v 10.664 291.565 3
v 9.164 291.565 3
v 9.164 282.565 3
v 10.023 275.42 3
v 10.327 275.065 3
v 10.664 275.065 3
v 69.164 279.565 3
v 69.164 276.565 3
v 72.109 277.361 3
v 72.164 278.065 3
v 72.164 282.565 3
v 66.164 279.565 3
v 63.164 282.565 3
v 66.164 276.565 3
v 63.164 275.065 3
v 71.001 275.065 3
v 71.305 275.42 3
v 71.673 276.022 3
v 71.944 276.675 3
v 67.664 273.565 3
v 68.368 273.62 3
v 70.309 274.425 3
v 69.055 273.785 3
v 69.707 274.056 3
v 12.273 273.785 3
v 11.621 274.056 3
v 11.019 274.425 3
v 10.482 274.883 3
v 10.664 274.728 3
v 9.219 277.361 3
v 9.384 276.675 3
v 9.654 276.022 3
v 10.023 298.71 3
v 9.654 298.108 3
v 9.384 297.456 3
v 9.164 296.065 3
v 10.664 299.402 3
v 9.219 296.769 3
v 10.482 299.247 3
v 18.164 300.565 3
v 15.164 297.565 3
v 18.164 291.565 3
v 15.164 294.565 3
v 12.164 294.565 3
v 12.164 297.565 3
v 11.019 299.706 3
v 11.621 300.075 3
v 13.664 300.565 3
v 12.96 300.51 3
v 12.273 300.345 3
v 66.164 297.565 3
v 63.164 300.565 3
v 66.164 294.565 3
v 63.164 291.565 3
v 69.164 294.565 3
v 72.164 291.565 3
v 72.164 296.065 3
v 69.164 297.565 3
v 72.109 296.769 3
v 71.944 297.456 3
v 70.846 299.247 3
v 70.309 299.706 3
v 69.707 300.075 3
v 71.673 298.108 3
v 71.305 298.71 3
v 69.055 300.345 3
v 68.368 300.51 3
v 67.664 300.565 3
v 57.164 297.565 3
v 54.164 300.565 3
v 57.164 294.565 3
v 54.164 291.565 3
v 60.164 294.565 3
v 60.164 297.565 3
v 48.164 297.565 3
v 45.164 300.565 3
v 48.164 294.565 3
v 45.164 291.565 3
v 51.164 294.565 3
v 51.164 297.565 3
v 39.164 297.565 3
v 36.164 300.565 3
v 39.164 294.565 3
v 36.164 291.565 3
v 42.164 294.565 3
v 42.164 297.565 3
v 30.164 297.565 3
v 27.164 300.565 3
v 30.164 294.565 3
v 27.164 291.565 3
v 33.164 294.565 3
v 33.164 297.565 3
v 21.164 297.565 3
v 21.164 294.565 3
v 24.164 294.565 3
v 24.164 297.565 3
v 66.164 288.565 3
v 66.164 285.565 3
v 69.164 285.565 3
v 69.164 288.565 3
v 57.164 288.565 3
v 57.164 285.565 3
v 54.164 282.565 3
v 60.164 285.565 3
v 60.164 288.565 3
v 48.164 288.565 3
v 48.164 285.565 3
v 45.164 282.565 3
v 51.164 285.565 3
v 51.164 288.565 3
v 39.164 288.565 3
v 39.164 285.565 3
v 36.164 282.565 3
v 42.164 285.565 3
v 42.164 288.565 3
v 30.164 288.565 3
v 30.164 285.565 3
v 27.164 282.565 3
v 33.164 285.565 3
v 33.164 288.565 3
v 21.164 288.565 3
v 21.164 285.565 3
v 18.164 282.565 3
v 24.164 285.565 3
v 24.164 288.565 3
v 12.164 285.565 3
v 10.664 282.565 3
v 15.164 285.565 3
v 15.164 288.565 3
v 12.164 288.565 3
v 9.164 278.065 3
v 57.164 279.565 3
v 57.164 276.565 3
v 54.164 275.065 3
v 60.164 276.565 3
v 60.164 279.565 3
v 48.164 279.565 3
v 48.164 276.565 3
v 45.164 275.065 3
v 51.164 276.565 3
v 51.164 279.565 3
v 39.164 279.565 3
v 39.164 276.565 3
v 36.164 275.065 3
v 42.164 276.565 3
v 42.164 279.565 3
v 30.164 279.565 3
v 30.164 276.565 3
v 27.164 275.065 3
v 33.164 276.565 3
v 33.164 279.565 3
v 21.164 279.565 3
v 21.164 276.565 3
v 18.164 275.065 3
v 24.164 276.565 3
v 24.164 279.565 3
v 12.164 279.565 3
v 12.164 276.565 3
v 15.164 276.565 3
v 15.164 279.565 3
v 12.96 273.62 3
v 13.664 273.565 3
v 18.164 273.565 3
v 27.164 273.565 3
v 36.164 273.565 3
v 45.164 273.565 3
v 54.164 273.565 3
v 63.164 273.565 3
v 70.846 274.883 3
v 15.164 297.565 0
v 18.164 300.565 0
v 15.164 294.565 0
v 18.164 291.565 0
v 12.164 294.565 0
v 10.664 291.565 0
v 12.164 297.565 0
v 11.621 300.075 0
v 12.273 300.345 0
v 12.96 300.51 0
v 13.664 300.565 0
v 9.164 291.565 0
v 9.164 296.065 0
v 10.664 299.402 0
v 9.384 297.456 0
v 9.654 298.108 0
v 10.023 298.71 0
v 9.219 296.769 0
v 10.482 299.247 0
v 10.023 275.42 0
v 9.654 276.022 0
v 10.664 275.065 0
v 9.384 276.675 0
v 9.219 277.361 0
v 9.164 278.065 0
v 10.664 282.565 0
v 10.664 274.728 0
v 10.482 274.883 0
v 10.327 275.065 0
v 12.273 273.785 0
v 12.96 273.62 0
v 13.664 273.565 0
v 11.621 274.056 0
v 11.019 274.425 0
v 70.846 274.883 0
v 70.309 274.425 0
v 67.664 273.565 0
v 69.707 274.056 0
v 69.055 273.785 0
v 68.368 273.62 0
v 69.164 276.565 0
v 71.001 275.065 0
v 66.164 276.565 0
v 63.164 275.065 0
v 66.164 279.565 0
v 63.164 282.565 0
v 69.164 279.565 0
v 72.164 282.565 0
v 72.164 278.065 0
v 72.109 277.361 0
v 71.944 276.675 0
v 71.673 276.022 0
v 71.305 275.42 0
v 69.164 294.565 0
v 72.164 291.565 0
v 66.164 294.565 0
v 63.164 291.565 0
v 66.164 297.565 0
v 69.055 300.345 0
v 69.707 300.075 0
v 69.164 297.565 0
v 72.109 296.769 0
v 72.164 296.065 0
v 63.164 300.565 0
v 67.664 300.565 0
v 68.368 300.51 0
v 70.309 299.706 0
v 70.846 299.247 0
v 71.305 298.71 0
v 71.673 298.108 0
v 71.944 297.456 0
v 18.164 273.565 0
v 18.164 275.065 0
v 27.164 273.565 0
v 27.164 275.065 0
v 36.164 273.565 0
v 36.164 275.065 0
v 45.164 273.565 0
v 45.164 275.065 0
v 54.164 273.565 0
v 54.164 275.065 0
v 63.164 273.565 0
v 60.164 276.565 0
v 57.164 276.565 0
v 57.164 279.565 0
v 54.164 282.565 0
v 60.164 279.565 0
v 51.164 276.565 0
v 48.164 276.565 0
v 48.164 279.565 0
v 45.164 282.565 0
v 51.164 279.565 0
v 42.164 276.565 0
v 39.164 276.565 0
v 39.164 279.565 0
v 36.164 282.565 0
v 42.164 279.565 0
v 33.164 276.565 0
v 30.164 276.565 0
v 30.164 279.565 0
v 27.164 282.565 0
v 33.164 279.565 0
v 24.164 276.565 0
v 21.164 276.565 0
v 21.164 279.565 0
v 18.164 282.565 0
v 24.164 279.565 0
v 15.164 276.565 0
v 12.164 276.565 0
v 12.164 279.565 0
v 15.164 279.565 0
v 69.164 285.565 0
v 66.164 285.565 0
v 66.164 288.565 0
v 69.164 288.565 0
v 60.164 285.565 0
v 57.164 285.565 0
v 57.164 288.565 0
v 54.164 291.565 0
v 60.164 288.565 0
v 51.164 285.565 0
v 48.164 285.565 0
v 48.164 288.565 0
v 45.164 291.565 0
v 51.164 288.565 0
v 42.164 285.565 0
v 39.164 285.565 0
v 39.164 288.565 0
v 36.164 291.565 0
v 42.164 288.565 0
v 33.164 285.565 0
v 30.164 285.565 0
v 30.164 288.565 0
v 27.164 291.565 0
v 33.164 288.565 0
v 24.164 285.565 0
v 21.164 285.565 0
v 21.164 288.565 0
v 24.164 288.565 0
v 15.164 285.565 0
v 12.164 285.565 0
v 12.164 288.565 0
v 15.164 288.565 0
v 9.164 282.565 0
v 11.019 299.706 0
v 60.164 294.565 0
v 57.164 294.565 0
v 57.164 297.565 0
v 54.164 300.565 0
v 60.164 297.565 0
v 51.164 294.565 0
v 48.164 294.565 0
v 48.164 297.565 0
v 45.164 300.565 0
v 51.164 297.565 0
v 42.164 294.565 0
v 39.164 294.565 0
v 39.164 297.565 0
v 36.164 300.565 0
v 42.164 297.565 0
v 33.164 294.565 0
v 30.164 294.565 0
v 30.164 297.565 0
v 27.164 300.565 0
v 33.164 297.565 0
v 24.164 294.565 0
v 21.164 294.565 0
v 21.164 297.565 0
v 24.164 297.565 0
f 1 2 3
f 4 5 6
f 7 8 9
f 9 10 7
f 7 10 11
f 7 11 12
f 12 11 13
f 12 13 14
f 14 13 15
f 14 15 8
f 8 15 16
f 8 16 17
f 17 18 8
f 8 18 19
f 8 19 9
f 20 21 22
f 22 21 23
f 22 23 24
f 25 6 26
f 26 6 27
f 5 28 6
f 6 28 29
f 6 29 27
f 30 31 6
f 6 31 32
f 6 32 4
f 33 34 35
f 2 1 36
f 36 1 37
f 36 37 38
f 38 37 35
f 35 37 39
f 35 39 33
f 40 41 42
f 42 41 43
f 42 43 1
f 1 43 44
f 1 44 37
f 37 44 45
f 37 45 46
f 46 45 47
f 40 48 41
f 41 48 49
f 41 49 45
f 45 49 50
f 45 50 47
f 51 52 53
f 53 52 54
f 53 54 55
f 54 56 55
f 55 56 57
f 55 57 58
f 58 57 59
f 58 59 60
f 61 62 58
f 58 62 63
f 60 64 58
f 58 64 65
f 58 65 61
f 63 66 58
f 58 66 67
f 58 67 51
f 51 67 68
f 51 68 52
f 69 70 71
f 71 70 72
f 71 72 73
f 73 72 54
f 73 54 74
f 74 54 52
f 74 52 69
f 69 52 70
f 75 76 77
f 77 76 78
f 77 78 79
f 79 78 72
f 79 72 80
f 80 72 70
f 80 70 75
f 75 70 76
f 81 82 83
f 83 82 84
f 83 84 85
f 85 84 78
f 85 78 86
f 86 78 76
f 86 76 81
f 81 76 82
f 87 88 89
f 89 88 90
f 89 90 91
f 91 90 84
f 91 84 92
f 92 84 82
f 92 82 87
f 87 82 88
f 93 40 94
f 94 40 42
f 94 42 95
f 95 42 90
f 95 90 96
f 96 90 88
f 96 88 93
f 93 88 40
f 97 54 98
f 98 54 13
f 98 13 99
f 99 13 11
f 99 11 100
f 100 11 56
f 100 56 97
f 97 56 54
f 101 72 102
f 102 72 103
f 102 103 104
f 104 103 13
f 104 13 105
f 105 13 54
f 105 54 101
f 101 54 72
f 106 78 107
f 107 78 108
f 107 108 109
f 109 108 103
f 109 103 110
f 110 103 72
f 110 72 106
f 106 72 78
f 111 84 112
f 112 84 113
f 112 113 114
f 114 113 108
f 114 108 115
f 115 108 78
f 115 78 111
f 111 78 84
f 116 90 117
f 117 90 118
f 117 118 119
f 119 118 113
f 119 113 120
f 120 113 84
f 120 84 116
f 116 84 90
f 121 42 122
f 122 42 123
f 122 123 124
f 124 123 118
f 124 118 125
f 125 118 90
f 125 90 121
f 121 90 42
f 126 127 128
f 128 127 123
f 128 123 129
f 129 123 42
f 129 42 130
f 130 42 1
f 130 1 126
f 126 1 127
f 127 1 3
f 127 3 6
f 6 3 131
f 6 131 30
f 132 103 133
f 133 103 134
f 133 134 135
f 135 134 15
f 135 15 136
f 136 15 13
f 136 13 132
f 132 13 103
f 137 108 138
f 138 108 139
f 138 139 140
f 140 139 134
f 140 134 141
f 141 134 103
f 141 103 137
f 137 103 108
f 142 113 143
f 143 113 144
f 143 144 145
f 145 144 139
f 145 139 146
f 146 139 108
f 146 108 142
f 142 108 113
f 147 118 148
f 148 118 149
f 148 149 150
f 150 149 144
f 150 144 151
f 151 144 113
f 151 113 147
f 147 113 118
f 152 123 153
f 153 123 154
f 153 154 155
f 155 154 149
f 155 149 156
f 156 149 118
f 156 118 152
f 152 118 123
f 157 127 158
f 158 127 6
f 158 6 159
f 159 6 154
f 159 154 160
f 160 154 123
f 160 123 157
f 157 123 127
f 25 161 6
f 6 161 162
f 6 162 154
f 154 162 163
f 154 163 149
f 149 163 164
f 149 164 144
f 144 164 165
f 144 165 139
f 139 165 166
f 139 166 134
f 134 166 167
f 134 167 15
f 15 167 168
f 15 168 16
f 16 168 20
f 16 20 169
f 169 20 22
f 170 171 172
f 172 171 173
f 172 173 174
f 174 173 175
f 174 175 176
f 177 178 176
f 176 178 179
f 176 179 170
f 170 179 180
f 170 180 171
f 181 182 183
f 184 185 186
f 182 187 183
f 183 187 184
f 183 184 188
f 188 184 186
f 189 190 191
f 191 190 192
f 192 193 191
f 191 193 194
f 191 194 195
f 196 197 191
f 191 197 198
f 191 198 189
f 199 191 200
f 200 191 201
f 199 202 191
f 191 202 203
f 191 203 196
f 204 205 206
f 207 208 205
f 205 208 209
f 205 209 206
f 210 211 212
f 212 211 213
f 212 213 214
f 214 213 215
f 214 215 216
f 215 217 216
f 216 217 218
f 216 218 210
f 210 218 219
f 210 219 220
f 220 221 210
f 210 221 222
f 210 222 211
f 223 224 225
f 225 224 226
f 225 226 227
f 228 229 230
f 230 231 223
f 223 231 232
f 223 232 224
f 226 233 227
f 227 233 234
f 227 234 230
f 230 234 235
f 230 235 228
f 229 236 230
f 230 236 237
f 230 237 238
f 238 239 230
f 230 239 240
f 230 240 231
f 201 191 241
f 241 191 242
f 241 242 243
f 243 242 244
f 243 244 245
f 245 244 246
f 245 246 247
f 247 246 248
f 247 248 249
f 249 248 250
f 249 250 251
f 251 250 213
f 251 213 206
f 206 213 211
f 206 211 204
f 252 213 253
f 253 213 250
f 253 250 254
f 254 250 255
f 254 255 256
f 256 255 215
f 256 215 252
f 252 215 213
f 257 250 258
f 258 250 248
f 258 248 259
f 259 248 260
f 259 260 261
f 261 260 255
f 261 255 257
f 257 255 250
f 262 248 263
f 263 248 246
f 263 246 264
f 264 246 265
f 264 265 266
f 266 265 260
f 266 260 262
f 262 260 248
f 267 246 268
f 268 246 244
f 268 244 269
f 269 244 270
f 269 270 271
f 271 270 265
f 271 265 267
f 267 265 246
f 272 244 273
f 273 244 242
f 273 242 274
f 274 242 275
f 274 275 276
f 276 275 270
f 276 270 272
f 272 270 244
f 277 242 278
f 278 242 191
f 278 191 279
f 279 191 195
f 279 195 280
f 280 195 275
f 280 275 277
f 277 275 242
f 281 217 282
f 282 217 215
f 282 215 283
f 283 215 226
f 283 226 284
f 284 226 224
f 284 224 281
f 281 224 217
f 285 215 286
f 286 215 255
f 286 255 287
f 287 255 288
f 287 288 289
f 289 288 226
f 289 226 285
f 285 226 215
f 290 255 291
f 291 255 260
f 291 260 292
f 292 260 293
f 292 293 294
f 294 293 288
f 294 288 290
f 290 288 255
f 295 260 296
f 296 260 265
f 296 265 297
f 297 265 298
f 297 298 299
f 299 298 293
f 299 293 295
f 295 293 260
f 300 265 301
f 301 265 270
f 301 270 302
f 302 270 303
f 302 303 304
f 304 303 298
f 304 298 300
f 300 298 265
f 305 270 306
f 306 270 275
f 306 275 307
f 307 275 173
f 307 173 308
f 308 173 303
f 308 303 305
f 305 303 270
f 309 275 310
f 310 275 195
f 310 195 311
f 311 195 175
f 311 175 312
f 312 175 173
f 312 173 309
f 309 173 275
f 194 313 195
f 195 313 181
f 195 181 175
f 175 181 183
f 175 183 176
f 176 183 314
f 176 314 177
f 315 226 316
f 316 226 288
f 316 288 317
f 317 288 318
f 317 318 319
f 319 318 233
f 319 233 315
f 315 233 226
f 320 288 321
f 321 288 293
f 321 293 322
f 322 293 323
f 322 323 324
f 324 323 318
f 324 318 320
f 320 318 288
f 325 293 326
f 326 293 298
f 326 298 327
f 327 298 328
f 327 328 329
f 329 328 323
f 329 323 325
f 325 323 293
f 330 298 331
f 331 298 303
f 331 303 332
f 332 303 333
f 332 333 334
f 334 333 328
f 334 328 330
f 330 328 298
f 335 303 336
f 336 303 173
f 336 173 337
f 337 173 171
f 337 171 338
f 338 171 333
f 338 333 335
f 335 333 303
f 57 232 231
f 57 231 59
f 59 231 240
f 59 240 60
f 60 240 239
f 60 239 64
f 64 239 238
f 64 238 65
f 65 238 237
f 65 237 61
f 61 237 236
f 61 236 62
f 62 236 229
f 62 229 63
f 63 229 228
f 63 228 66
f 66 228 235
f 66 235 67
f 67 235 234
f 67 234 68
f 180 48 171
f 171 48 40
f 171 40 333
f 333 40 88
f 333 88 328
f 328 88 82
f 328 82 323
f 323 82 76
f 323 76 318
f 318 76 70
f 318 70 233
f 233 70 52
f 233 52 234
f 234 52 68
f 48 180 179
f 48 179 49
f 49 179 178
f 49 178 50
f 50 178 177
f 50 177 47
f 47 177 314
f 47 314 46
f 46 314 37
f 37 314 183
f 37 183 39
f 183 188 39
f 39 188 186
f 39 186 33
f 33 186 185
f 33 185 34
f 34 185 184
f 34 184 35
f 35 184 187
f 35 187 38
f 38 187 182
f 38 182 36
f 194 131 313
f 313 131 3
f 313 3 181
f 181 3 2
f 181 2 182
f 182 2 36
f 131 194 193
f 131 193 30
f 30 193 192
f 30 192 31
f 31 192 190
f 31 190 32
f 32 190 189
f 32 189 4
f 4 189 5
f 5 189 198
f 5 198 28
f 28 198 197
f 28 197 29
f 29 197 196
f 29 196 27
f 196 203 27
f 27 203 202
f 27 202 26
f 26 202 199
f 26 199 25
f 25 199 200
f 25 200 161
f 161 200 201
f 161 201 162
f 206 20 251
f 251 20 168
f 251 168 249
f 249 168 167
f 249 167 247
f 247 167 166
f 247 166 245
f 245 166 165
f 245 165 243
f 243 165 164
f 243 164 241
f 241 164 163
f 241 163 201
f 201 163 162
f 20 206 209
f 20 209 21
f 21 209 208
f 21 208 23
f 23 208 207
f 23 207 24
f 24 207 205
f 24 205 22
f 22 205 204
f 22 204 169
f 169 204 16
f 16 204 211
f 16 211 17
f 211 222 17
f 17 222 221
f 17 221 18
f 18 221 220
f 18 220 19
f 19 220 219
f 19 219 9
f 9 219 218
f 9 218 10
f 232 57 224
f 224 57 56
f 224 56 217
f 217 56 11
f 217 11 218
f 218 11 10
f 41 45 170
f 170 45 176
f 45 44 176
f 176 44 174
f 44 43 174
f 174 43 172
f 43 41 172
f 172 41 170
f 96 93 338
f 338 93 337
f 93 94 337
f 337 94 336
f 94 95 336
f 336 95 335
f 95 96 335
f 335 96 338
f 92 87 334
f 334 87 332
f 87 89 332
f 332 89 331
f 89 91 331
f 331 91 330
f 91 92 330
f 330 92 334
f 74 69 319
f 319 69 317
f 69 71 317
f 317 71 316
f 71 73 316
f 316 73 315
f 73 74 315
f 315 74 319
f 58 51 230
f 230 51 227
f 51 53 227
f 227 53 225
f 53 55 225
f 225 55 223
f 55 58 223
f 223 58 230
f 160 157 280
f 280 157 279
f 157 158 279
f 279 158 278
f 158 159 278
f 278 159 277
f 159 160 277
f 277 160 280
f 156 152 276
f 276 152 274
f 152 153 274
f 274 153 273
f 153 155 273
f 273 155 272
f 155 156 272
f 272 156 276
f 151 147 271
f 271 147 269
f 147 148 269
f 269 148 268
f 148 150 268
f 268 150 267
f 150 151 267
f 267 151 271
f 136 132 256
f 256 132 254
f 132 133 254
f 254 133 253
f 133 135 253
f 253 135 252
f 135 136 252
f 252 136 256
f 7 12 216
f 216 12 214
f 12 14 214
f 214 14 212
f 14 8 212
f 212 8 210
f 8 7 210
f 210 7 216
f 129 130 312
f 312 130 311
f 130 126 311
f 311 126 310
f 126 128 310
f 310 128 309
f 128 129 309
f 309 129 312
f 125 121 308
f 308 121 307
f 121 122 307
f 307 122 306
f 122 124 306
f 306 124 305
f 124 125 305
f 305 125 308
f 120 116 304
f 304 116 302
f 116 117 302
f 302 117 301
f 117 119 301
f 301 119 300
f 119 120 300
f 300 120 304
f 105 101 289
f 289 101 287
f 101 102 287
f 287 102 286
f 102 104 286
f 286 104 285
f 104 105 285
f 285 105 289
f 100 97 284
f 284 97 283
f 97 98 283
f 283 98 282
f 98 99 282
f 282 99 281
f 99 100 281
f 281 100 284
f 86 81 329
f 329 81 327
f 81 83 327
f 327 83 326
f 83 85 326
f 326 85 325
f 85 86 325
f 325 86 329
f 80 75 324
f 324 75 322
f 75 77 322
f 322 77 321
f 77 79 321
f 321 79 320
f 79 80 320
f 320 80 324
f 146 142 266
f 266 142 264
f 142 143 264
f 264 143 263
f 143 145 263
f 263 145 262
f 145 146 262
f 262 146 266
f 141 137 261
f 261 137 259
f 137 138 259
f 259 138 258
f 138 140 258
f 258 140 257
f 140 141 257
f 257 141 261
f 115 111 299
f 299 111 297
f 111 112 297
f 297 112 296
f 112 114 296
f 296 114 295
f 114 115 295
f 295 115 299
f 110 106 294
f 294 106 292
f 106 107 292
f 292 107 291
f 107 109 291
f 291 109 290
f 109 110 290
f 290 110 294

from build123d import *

# Parameters (mm, degrees)
MODEL_W                 = 3
MODEL_H                 = 3
SALIENTE_EXTRUIR1_DEPTH = 3


with BuildPart() as part:
    # Model → Saliente-Extruir1 (new body)
    with BuildSketch(Plane.XY):
        with BuildLine():
            Line((13.663940534, 300.565078072), (67.663940534, 300.565078072))
            ThreePointArc((67.663940534, 300.565078072), (70.845921049, 299.247058587), (72.163940534, 296.065078072))
            Line((72.163940534, 296.065078072), (72.163940534, 278.065078072))
            ThreePointArc((72.163940534, 278.065078072), (70.845921049, 274.883097556), (67.663940534, 273.565078072))
            Line((67.663940534, 273.565078072), (13.663940534, 273.565078072))
            ThreePointArc((13.663940534, 273.565078072), (10.481960019, 274.883097556), (9.163940534, 278.065078072))
            Line((9.163940534, 278.065078072), (9.163940534, 296.065078072))
            ThreePointArc((9.163940534, 296.065078072), (10.481960019, 299.247058587), (13.663940534, 300.565078072))
        make_face()
        with Locations((13.663940534, 296.065078072)):
            Rectangle(MODEL_W, MODEL_H, mode=Mode.SUBTRACT)
        with Locations((22.663940534, 296.065078072)):
            Rectangle(MODEL_W, MODEL_H, mode=Mode.SUBTRACT)
        with Locations((31.663940534, 296.065078072)):
            Rectangle(MODEL_W, MODEL_H, mode=Mode.SUBTRACT)
        with Locations((58.663940534, 296.065078072)):
            Rectangle(MODEL_W, MODEL_H, mode=Mode.SUBTRACT)
        with Locations((67.663940534, 296.065078072)):
            Rectangle(MODEL_W, MODEL_H, mode=Mode.SUBTRACT)
        with Locations((13.663940534, 278.065078072)):
            Rectangle(MODEL_W, MODEL_H, mode=Mode.SUBTRACT)
        with Locations((22.663940534, 278.065078072)):
            Rectangle(MODEL_W, MODEL_H, mode=Mode.SUBTRACT)
        with Locations((31.663940534, 278.065078072)):
            Rectangle(MODEL_W, MODEL_H, mode=Mode.SUBTRACT)
        with Locations((58.663940534, 278.065078072)):
            Rectangle(MODEL_W, MODEL_H, mode=Mode.SUBTRACT)
        with Locations((67.663940534, 278.065078072)):
            Rectangle(MODEL_W, MODEL_H, mode=Mode.SUBTRACT)
        with Locations((13.663940534, 287.065078072)):
            Rectangle(MODEL_W, MODEL_H, mode=Mode.SUBTRACT)
        with Locations((22.663940534, 287.065078072)):
            Rectangle(MODEL_W, MODEL_H, mode=Mode.SUBTRACT)
        with Locations((31.663940534, 287.065078072)):
            Rectangle(MODEL_W, MODEL_H, mode=Mode.SUBTRACT)
        with Locations((58.663940534, 287.065078072)):
            Rectangle(MODEL_W, MODEL_H, mode=Mode.SUBTRACT)
        with Locations((67.663940534, 287.065078072)):
            Rectangle(MODEL_W, MODEL_H, mode=Mode.SUBTRACT)
        with Locations((40.663940534, 296.065078072)):
            Rectangle(MODEL_W, MODEL_H, mode=Mode.SUBTRACT)
        with Locations((49.663940534, 296.065078072)):
            Rectangle(MODEL_W, MODEL_H, mode=Mode.SUBTRACT)
        with Locations((40.663940534, 278.065078072)):
            Rectangle(MODEL_W, MODEL_H, mode=Mode.SUBTRACT)
        with Locations((49.663940534, 278.065078072)):
            Rectangle(MODEL_W, MODEL_H, mode=Mode.SUBTRACT)
        with Locations((40.663940534, 287.065078072)):
            Rectangle(MODEL_W, MODEL_H, mode=Mode.SUBTRACT)
        with Locations((49.663940534, 287.065078072)):
            Rectangle(MODEL_W, MODEL_H, mode=Mode.SUBTRACT)
    extrude(amount=SALIENTE_EXTRUIR1_DEPTH)


solid = part.part
